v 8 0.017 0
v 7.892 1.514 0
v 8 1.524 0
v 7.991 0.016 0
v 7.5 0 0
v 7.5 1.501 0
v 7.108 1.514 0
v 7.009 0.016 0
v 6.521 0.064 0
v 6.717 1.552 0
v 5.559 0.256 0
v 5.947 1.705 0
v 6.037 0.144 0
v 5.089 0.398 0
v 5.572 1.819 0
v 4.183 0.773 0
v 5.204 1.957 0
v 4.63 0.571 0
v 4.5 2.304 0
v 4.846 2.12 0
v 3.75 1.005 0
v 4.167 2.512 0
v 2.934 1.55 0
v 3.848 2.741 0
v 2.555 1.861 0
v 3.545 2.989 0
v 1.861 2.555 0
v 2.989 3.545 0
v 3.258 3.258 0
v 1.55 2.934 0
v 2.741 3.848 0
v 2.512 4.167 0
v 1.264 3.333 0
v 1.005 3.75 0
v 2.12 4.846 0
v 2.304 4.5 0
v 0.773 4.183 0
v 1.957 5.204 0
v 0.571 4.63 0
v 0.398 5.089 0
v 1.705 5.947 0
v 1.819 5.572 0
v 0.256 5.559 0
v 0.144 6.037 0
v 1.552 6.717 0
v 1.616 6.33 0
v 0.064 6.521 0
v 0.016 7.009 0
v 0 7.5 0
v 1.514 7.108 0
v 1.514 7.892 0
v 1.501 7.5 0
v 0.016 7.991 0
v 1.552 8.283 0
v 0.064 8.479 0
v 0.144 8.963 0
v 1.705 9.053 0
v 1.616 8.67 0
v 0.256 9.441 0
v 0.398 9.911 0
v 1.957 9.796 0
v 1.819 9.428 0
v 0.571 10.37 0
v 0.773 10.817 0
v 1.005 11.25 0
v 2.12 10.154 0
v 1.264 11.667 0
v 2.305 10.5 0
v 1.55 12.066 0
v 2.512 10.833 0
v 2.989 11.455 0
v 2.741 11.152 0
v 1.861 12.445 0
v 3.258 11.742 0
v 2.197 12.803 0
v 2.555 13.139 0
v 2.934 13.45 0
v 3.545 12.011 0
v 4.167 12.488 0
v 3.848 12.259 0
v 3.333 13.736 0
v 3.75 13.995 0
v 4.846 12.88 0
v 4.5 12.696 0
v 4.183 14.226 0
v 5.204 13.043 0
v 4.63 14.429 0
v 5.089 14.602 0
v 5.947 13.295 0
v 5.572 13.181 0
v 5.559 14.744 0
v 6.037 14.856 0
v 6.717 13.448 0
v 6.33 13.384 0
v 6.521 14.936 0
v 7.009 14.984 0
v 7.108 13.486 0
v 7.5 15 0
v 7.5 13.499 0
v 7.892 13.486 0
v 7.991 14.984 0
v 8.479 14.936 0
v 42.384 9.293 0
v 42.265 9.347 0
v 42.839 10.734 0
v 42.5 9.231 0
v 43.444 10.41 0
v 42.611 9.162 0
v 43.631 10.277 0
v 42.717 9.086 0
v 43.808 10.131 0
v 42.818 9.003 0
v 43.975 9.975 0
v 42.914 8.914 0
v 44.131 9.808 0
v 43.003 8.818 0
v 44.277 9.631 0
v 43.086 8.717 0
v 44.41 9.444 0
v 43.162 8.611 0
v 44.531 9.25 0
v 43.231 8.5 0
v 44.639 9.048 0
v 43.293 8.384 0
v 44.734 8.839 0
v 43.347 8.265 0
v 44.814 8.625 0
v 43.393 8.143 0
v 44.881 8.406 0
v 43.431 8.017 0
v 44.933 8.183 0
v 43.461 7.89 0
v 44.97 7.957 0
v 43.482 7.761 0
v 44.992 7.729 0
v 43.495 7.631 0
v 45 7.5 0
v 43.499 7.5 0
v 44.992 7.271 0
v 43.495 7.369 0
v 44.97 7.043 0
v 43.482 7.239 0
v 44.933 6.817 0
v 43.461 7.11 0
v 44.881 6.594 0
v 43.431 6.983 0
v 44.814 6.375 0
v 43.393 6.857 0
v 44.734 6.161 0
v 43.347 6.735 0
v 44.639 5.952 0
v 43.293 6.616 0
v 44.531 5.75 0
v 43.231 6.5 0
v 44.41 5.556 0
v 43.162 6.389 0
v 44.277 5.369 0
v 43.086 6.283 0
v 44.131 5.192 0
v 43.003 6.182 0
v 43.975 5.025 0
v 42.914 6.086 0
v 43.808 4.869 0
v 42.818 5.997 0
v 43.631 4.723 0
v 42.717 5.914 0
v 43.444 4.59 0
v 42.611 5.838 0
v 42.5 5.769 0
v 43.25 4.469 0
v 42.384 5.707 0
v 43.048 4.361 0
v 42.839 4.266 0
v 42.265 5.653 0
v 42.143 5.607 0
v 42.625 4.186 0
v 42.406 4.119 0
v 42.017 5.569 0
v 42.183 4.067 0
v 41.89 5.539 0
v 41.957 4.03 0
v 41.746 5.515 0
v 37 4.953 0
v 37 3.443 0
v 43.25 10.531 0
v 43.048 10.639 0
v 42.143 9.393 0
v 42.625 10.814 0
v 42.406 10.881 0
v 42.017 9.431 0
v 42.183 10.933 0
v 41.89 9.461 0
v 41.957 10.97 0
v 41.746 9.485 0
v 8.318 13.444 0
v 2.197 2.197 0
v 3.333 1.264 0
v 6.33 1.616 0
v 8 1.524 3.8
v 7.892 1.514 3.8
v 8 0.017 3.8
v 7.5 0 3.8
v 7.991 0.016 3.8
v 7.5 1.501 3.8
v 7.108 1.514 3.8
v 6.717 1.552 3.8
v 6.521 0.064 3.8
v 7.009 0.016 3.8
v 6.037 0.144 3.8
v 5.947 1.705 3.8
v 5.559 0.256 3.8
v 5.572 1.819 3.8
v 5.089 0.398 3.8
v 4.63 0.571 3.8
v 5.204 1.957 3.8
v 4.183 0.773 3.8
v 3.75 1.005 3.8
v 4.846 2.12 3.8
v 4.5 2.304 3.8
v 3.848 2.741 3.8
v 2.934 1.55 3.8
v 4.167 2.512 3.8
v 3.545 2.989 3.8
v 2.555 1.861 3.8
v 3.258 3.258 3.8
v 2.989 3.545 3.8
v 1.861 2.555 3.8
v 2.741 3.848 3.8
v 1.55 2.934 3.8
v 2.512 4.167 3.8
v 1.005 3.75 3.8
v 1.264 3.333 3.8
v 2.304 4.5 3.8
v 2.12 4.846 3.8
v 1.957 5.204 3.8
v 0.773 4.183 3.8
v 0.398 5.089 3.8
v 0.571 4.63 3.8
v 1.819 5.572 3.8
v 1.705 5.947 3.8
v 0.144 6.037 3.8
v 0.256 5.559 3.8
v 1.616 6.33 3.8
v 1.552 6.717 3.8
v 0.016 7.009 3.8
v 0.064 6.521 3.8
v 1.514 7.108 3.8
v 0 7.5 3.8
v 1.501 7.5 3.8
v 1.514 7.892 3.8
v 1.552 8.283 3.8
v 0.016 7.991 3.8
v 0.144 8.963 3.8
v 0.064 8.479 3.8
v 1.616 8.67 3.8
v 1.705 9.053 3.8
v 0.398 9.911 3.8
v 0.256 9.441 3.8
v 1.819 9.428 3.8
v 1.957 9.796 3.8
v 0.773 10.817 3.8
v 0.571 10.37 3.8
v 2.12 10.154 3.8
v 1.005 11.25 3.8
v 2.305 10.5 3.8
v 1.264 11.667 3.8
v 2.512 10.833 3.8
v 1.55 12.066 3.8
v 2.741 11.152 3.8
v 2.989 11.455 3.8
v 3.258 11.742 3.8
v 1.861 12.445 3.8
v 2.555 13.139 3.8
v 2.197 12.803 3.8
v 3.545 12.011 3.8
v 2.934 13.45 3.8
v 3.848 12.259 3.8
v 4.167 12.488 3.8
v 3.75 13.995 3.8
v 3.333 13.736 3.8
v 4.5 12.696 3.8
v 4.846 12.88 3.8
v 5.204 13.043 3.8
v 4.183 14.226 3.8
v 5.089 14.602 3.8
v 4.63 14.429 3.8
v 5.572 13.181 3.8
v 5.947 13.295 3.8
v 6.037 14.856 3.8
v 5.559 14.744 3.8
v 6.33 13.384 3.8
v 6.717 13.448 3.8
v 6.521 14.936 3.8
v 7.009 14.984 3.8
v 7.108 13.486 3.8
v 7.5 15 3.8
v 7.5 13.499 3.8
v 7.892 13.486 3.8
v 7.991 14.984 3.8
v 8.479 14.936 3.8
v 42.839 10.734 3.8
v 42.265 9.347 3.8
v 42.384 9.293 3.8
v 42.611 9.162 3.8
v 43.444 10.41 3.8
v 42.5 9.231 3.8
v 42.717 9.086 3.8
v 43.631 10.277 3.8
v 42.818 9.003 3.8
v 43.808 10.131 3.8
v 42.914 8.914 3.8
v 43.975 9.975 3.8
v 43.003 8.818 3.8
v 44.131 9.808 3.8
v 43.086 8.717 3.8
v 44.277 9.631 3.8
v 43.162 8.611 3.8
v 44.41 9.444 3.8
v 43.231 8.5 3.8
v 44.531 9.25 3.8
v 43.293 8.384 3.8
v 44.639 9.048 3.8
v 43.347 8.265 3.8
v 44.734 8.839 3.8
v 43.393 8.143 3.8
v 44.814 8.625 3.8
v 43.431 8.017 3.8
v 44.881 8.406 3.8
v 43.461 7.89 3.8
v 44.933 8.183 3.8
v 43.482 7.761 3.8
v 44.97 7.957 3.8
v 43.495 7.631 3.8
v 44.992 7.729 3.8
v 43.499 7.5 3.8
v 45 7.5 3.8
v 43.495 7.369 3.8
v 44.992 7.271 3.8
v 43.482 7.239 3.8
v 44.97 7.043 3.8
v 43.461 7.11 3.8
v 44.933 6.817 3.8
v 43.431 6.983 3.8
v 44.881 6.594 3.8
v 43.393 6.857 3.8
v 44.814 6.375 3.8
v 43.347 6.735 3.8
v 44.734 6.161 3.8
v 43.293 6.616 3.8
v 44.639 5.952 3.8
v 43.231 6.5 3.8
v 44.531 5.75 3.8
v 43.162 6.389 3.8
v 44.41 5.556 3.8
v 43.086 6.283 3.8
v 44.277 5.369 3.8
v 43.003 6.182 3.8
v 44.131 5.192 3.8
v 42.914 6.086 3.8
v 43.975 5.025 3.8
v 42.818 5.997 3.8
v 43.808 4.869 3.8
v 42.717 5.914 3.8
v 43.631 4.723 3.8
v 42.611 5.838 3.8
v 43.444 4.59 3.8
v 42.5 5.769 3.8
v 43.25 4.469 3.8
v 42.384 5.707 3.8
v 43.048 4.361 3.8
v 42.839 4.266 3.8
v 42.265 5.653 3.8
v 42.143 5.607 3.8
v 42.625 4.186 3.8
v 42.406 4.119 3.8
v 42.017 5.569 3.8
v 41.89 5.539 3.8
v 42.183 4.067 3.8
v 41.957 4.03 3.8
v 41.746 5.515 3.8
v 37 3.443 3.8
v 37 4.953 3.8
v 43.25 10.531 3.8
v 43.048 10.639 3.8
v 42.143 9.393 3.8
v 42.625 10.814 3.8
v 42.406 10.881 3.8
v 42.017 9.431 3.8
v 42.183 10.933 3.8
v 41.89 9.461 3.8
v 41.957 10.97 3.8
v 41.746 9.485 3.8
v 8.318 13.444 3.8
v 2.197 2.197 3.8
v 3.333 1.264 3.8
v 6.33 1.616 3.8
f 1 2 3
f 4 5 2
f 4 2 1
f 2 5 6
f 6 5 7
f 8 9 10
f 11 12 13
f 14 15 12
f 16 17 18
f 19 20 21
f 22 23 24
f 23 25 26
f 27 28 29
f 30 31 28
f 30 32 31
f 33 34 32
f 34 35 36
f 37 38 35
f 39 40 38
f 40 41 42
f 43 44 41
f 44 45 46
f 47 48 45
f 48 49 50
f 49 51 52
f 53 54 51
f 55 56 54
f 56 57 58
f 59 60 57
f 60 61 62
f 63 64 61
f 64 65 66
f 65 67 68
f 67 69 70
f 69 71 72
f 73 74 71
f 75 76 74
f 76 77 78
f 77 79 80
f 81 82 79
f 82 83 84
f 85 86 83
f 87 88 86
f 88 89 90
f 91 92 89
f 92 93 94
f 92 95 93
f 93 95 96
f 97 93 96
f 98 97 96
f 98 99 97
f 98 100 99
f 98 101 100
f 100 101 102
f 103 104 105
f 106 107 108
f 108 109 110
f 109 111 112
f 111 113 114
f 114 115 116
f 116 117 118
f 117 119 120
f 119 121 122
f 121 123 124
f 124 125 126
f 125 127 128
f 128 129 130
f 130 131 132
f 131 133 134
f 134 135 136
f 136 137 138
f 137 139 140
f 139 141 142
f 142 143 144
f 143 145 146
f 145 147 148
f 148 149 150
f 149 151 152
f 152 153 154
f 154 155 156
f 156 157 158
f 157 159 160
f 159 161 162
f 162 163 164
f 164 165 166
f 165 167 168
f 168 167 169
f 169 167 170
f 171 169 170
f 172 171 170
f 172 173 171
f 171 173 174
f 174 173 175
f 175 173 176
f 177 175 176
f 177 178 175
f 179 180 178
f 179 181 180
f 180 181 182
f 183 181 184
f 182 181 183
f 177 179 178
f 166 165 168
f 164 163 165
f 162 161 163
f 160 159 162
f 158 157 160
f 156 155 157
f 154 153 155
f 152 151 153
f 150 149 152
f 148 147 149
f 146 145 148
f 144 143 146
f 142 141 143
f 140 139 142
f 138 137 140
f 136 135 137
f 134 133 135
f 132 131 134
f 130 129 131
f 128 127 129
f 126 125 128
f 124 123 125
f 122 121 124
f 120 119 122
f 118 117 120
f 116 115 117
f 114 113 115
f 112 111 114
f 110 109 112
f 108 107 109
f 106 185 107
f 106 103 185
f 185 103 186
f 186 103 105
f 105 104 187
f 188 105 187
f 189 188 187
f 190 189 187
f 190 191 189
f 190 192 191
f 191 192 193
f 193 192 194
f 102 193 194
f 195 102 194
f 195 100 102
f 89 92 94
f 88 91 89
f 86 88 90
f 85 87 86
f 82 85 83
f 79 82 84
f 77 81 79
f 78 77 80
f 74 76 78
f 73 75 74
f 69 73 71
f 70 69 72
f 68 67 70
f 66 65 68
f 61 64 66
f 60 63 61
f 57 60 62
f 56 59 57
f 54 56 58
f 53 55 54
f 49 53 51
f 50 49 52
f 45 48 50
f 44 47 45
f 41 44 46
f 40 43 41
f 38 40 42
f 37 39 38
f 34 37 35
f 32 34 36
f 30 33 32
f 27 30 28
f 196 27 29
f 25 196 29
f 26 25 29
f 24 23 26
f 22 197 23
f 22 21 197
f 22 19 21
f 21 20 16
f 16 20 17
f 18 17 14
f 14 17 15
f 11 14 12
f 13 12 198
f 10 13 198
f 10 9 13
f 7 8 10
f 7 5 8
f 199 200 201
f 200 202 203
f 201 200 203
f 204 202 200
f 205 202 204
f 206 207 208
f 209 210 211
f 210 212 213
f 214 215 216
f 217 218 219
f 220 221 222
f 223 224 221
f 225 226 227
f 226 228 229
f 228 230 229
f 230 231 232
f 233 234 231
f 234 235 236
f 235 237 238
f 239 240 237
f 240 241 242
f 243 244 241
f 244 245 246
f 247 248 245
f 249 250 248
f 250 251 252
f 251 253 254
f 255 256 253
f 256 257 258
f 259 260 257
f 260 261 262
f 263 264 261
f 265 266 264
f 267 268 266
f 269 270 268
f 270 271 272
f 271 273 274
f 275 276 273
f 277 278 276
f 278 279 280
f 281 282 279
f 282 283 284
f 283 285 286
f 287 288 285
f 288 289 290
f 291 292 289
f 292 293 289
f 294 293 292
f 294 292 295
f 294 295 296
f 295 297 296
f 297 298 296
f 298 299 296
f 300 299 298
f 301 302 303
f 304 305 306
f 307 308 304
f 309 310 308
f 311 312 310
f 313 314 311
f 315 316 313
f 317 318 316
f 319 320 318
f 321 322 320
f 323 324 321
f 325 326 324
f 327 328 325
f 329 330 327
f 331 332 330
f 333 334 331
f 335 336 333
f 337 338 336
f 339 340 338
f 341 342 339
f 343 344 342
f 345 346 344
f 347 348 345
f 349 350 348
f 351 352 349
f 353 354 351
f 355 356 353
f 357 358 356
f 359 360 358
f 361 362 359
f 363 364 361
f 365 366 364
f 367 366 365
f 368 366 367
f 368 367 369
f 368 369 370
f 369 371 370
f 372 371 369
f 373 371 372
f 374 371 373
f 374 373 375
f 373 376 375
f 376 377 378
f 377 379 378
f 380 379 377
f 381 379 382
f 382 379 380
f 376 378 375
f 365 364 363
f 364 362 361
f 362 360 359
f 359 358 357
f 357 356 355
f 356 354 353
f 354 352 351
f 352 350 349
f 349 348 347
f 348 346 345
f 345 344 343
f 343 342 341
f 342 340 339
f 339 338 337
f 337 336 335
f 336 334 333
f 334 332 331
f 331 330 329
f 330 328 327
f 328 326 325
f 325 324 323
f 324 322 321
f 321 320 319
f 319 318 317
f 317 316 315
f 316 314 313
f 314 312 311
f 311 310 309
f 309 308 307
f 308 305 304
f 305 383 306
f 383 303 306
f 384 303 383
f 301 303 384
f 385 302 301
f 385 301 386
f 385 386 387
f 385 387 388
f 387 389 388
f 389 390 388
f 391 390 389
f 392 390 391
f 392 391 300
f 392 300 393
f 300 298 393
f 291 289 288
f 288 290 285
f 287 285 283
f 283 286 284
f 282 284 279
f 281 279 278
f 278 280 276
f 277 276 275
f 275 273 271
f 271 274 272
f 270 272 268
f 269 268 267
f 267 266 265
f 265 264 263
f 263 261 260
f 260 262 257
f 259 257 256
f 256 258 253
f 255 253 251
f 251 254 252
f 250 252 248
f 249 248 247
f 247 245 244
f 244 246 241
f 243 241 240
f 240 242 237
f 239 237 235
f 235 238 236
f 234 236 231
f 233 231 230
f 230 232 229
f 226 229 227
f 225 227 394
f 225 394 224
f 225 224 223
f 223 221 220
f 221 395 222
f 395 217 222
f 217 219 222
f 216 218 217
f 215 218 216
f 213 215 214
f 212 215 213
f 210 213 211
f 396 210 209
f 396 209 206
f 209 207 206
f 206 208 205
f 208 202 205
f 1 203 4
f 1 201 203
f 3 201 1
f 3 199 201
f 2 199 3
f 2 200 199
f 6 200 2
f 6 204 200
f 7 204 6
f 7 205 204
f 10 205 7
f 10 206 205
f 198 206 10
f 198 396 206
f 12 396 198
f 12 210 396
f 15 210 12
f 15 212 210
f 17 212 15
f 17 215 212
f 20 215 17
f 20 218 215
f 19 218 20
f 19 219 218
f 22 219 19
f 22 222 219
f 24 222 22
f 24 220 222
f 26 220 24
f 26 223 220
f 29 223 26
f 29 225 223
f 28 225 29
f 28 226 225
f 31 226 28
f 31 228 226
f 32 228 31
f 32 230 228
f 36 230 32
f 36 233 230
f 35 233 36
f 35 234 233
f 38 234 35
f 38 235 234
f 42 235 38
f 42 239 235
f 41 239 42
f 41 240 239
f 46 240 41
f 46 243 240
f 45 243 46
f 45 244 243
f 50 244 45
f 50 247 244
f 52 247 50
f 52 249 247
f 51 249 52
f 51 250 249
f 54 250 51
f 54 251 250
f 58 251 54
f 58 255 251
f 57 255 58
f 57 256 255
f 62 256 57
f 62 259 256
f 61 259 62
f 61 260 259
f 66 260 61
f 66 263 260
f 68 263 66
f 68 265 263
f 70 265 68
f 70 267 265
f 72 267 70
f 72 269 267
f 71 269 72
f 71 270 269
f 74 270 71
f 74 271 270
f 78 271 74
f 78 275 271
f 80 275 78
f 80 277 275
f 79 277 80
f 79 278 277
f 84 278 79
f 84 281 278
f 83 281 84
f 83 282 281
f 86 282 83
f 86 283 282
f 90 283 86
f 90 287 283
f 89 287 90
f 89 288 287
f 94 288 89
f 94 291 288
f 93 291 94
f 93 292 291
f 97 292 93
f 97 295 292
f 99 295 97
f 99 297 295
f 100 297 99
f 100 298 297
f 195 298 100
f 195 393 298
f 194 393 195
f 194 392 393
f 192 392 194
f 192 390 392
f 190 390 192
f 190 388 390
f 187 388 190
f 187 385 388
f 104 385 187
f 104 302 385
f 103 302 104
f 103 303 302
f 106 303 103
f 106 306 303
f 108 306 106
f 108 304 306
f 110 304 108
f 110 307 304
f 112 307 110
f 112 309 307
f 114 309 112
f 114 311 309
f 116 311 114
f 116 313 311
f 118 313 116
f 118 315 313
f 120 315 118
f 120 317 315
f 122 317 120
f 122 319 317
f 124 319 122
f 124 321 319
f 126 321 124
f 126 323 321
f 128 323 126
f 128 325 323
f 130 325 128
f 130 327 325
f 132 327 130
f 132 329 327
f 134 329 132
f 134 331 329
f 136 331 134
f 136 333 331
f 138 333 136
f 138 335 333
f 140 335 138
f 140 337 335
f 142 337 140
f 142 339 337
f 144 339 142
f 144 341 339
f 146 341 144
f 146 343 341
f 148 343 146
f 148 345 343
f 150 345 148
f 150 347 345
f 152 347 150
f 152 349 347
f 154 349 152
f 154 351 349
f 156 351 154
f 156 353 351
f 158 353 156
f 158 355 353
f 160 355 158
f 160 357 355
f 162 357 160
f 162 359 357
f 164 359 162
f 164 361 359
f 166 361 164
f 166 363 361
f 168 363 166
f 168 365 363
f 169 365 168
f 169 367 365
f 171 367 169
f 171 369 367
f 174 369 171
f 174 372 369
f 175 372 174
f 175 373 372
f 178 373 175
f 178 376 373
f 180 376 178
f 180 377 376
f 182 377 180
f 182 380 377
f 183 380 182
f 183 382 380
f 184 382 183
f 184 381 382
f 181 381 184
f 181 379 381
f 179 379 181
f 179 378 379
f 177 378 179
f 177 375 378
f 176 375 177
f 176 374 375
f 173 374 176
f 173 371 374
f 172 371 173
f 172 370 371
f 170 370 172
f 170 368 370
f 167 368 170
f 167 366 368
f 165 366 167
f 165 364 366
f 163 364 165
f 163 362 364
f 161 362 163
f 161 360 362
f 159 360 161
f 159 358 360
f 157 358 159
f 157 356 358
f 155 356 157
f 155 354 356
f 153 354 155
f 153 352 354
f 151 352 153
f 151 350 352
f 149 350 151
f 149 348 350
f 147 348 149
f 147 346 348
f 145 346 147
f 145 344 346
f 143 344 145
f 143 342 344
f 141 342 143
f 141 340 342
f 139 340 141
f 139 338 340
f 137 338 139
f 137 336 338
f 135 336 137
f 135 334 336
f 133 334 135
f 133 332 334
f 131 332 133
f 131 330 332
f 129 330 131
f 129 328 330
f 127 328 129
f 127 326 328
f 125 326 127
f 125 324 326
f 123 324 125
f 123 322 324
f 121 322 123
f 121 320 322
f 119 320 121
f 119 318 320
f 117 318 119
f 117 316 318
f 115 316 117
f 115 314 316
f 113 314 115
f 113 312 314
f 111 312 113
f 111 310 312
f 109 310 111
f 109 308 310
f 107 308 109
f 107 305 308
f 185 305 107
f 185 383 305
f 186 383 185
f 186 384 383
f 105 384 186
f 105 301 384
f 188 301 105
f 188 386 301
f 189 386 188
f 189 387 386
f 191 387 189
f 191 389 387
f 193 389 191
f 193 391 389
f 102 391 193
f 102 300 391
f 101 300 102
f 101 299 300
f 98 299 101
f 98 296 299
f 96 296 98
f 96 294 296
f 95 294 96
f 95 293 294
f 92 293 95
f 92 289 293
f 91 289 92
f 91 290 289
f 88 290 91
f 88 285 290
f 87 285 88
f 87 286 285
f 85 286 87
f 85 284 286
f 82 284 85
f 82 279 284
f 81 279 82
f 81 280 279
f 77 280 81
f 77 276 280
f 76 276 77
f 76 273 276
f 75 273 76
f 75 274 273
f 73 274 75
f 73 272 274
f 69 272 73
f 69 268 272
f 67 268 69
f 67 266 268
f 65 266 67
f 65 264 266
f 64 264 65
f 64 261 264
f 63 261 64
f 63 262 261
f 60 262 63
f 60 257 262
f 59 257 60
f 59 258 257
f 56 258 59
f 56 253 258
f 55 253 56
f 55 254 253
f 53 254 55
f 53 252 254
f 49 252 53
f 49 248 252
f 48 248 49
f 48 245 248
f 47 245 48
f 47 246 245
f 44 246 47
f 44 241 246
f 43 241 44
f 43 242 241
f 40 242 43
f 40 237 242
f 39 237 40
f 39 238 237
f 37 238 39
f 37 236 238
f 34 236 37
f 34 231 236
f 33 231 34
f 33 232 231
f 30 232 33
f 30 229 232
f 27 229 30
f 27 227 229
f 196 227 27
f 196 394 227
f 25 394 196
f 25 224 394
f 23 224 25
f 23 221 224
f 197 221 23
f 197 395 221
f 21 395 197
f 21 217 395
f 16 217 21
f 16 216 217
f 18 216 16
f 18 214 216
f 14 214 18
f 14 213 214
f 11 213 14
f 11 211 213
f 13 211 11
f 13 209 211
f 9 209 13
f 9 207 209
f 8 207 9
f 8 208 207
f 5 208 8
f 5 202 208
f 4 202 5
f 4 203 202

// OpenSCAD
overall_length = 45;
height = 3.8;

large_outer_diameter = 15;
small_outer_diameter = 7;
wall_width = 1.5;
side_opening_inset = 8;

$fn = 96;

large_radius = large_outer_diameter / 2;
small_radius = small_outer_diameter / 2;

large_center_x = large_radius;
small_center_x = overall_length - small_radius;
center_y = large_radius;

module tapered_capsule_2d(delta = 0) {
  offset(delta = delta)
    hull() {
      translate([large_center_x, center_y])
        circle(d = large_outer_diameter);

      translate([small_center_x, center_y])
        circle(d = small_outer_diameter);
    }
}

module side_opening_2d() {
  translate([side_opening_inset, -1])
    square([
      overall_length - side_opening_inset * 2,
      center_y + wall_width + 1
    ]);
}

linear_extrude(height = height)
  difference() {
    tapered_capsule_2d();
    tapered_capsule_2d(delta = -wall_width);
    side_opening_2d();
  }
